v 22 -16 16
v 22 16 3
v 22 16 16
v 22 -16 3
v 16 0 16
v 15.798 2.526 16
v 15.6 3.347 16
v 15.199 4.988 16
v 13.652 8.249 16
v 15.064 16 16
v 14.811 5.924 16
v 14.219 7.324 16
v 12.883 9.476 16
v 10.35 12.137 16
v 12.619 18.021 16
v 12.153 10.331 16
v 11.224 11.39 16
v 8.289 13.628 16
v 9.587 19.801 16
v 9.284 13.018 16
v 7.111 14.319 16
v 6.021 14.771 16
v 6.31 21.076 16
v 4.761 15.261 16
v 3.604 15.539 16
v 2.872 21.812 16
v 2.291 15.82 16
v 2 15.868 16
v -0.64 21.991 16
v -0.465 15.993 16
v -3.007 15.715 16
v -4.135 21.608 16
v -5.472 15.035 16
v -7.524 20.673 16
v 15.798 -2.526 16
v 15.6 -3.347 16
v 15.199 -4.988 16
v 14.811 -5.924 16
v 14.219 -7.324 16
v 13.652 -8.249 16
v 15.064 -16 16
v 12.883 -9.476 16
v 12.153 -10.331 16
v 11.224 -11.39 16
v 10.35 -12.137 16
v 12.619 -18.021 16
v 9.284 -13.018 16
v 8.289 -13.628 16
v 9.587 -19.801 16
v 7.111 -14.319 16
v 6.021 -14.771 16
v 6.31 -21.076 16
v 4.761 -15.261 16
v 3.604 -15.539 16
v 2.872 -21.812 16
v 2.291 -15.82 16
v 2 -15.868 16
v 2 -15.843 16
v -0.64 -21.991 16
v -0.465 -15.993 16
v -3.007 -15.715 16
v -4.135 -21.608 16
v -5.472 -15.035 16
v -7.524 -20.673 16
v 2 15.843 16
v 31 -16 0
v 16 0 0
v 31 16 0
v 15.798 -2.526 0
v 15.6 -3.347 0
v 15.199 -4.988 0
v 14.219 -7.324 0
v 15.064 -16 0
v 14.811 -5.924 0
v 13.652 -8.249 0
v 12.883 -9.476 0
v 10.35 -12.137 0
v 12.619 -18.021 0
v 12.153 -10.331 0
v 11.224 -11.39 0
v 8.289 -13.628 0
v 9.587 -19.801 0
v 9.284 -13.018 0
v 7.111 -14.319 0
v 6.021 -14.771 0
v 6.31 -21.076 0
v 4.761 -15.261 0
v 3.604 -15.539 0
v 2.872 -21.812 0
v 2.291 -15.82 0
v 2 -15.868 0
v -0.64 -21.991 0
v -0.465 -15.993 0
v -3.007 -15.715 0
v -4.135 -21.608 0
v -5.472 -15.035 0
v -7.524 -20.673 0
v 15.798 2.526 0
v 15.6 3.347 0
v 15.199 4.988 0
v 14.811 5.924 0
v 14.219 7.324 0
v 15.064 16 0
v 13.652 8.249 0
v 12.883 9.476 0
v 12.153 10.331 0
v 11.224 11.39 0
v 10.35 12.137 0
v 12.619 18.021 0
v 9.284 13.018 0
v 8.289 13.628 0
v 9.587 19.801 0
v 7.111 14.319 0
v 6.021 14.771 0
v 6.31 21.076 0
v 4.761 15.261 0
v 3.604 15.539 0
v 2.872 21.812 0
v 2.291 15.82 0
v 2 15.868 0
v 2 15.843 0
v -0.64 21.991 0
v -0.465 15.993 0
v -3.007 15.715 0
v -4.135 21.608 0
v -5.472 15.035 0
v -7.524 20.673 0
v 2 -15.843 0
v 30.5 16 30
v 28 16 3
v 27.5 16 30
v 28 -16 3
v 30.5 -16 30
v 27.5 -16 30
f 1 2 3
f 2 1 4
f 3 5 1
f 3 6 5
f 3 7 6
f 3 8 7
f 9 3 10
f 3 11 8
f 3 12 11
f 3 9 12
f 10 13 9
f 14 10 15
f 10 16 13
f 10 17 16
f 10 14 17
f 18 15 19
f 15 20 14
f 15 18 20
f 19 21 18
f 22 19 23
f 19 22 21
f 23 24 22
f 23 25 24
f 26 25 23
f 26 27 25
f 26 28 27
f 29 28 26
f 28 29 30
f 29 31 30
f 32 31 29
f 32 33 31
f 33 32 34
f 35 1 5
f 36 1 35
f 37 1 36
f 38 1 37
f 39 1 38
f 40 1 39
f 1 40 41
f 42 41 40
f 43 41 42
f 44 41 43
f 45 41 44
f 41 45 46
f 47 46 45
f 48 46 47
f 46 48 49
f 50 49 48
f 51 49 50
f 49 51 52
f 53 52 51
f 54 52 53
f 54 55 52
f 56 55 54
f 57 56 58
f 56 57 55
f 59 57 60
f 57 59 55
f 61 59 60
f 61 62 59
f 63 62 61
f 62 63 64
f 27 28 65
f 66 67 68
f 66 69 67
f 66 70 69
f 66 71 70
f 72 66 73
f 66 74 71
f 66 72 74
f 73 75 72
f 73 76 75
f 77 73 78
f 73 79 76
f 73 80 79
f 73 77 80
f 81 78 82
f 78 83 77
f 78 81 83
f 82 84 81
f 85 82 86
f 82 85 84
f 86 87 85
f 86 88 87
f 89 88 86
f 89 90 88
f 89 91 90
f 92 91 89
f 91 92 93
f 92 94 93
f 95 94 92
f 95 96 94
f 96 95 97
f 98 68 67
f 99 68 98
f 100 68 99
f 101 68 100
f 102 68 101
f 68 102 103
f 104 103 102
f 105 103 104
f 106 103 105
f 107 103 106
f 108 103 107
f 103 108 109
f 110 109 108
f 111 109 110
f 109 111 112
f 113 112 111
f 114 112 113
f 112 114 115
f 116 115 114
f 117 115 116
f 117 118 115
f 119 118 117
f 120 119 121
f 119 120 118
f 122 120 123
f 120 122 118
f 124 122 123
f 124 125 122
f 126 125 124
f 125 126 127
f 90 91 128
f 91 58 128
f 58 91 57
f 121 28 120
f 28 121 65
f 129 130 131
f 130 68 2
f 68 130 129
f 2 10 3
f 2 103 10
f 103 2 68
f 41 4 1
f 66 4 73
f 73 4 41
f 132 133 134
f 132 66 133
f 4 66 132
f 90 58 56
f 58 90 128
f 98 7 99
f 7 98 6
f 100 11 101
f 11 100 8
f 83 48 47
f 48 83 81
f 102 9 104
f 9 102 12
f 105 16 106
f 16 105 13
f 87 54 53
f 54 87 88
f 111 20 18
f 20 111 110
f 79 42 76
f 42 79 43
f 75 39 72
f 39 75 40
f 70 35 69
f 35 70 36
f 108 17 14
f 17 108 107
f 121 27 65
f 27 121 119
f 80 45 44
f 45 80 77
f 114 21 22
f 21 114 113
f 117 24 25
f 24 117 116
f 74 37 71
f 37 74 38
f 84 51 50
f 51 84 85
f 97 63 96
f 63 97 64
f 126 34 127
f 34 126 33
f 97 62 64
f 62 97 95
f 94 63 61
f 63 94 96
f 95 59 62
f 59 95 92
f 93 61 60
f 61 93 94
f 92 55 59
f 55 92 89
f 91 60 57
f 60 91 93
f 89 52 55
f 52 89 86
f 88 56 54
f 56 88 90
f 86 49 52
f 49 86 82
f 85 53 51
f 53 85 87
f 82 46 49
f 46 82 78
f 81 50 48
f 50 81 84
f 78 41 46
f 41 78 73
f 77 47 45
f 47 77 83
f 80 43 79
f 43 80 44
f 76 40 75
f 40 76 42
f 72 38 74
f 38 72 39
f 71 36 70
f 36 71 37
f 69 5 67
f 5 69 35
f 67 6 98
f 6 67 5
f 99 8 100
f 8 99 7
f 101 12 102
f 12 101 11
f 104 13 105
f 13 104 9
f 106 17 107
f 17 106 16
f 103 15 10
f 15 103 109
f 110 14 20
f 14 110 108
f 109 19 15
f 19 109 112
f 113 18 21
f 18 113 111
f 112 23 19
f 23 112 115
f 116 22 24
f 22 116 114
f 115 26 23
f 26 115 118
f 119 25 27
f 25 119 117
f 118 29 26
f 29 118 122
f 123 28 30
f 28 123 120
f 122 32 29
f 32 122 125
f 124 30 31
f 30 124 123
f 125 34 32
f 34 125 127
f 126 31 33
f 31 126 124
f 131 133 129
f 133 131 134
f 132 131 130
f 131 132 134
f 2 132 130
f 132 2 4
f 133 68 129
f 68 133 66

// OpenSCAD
$fn = 40;

rotate(-110, [0, 0, 1])
rotate_extrude(angle=220)
translate([16, 0]) square([6, 16]);


difference() {
    translate([2, -16, 0])
    cube([20, 32, 16]);
    
    cylinder(h = 50, r = 16, center = true);
}

translate([22, 16, 0])
rotate(90, [1, 0, 0])
linear_extrude(32, true)
polygon([[0,0], [9, 0], [8.5, 30], [5.5, 30], [6, 3], [0, 3]]);
